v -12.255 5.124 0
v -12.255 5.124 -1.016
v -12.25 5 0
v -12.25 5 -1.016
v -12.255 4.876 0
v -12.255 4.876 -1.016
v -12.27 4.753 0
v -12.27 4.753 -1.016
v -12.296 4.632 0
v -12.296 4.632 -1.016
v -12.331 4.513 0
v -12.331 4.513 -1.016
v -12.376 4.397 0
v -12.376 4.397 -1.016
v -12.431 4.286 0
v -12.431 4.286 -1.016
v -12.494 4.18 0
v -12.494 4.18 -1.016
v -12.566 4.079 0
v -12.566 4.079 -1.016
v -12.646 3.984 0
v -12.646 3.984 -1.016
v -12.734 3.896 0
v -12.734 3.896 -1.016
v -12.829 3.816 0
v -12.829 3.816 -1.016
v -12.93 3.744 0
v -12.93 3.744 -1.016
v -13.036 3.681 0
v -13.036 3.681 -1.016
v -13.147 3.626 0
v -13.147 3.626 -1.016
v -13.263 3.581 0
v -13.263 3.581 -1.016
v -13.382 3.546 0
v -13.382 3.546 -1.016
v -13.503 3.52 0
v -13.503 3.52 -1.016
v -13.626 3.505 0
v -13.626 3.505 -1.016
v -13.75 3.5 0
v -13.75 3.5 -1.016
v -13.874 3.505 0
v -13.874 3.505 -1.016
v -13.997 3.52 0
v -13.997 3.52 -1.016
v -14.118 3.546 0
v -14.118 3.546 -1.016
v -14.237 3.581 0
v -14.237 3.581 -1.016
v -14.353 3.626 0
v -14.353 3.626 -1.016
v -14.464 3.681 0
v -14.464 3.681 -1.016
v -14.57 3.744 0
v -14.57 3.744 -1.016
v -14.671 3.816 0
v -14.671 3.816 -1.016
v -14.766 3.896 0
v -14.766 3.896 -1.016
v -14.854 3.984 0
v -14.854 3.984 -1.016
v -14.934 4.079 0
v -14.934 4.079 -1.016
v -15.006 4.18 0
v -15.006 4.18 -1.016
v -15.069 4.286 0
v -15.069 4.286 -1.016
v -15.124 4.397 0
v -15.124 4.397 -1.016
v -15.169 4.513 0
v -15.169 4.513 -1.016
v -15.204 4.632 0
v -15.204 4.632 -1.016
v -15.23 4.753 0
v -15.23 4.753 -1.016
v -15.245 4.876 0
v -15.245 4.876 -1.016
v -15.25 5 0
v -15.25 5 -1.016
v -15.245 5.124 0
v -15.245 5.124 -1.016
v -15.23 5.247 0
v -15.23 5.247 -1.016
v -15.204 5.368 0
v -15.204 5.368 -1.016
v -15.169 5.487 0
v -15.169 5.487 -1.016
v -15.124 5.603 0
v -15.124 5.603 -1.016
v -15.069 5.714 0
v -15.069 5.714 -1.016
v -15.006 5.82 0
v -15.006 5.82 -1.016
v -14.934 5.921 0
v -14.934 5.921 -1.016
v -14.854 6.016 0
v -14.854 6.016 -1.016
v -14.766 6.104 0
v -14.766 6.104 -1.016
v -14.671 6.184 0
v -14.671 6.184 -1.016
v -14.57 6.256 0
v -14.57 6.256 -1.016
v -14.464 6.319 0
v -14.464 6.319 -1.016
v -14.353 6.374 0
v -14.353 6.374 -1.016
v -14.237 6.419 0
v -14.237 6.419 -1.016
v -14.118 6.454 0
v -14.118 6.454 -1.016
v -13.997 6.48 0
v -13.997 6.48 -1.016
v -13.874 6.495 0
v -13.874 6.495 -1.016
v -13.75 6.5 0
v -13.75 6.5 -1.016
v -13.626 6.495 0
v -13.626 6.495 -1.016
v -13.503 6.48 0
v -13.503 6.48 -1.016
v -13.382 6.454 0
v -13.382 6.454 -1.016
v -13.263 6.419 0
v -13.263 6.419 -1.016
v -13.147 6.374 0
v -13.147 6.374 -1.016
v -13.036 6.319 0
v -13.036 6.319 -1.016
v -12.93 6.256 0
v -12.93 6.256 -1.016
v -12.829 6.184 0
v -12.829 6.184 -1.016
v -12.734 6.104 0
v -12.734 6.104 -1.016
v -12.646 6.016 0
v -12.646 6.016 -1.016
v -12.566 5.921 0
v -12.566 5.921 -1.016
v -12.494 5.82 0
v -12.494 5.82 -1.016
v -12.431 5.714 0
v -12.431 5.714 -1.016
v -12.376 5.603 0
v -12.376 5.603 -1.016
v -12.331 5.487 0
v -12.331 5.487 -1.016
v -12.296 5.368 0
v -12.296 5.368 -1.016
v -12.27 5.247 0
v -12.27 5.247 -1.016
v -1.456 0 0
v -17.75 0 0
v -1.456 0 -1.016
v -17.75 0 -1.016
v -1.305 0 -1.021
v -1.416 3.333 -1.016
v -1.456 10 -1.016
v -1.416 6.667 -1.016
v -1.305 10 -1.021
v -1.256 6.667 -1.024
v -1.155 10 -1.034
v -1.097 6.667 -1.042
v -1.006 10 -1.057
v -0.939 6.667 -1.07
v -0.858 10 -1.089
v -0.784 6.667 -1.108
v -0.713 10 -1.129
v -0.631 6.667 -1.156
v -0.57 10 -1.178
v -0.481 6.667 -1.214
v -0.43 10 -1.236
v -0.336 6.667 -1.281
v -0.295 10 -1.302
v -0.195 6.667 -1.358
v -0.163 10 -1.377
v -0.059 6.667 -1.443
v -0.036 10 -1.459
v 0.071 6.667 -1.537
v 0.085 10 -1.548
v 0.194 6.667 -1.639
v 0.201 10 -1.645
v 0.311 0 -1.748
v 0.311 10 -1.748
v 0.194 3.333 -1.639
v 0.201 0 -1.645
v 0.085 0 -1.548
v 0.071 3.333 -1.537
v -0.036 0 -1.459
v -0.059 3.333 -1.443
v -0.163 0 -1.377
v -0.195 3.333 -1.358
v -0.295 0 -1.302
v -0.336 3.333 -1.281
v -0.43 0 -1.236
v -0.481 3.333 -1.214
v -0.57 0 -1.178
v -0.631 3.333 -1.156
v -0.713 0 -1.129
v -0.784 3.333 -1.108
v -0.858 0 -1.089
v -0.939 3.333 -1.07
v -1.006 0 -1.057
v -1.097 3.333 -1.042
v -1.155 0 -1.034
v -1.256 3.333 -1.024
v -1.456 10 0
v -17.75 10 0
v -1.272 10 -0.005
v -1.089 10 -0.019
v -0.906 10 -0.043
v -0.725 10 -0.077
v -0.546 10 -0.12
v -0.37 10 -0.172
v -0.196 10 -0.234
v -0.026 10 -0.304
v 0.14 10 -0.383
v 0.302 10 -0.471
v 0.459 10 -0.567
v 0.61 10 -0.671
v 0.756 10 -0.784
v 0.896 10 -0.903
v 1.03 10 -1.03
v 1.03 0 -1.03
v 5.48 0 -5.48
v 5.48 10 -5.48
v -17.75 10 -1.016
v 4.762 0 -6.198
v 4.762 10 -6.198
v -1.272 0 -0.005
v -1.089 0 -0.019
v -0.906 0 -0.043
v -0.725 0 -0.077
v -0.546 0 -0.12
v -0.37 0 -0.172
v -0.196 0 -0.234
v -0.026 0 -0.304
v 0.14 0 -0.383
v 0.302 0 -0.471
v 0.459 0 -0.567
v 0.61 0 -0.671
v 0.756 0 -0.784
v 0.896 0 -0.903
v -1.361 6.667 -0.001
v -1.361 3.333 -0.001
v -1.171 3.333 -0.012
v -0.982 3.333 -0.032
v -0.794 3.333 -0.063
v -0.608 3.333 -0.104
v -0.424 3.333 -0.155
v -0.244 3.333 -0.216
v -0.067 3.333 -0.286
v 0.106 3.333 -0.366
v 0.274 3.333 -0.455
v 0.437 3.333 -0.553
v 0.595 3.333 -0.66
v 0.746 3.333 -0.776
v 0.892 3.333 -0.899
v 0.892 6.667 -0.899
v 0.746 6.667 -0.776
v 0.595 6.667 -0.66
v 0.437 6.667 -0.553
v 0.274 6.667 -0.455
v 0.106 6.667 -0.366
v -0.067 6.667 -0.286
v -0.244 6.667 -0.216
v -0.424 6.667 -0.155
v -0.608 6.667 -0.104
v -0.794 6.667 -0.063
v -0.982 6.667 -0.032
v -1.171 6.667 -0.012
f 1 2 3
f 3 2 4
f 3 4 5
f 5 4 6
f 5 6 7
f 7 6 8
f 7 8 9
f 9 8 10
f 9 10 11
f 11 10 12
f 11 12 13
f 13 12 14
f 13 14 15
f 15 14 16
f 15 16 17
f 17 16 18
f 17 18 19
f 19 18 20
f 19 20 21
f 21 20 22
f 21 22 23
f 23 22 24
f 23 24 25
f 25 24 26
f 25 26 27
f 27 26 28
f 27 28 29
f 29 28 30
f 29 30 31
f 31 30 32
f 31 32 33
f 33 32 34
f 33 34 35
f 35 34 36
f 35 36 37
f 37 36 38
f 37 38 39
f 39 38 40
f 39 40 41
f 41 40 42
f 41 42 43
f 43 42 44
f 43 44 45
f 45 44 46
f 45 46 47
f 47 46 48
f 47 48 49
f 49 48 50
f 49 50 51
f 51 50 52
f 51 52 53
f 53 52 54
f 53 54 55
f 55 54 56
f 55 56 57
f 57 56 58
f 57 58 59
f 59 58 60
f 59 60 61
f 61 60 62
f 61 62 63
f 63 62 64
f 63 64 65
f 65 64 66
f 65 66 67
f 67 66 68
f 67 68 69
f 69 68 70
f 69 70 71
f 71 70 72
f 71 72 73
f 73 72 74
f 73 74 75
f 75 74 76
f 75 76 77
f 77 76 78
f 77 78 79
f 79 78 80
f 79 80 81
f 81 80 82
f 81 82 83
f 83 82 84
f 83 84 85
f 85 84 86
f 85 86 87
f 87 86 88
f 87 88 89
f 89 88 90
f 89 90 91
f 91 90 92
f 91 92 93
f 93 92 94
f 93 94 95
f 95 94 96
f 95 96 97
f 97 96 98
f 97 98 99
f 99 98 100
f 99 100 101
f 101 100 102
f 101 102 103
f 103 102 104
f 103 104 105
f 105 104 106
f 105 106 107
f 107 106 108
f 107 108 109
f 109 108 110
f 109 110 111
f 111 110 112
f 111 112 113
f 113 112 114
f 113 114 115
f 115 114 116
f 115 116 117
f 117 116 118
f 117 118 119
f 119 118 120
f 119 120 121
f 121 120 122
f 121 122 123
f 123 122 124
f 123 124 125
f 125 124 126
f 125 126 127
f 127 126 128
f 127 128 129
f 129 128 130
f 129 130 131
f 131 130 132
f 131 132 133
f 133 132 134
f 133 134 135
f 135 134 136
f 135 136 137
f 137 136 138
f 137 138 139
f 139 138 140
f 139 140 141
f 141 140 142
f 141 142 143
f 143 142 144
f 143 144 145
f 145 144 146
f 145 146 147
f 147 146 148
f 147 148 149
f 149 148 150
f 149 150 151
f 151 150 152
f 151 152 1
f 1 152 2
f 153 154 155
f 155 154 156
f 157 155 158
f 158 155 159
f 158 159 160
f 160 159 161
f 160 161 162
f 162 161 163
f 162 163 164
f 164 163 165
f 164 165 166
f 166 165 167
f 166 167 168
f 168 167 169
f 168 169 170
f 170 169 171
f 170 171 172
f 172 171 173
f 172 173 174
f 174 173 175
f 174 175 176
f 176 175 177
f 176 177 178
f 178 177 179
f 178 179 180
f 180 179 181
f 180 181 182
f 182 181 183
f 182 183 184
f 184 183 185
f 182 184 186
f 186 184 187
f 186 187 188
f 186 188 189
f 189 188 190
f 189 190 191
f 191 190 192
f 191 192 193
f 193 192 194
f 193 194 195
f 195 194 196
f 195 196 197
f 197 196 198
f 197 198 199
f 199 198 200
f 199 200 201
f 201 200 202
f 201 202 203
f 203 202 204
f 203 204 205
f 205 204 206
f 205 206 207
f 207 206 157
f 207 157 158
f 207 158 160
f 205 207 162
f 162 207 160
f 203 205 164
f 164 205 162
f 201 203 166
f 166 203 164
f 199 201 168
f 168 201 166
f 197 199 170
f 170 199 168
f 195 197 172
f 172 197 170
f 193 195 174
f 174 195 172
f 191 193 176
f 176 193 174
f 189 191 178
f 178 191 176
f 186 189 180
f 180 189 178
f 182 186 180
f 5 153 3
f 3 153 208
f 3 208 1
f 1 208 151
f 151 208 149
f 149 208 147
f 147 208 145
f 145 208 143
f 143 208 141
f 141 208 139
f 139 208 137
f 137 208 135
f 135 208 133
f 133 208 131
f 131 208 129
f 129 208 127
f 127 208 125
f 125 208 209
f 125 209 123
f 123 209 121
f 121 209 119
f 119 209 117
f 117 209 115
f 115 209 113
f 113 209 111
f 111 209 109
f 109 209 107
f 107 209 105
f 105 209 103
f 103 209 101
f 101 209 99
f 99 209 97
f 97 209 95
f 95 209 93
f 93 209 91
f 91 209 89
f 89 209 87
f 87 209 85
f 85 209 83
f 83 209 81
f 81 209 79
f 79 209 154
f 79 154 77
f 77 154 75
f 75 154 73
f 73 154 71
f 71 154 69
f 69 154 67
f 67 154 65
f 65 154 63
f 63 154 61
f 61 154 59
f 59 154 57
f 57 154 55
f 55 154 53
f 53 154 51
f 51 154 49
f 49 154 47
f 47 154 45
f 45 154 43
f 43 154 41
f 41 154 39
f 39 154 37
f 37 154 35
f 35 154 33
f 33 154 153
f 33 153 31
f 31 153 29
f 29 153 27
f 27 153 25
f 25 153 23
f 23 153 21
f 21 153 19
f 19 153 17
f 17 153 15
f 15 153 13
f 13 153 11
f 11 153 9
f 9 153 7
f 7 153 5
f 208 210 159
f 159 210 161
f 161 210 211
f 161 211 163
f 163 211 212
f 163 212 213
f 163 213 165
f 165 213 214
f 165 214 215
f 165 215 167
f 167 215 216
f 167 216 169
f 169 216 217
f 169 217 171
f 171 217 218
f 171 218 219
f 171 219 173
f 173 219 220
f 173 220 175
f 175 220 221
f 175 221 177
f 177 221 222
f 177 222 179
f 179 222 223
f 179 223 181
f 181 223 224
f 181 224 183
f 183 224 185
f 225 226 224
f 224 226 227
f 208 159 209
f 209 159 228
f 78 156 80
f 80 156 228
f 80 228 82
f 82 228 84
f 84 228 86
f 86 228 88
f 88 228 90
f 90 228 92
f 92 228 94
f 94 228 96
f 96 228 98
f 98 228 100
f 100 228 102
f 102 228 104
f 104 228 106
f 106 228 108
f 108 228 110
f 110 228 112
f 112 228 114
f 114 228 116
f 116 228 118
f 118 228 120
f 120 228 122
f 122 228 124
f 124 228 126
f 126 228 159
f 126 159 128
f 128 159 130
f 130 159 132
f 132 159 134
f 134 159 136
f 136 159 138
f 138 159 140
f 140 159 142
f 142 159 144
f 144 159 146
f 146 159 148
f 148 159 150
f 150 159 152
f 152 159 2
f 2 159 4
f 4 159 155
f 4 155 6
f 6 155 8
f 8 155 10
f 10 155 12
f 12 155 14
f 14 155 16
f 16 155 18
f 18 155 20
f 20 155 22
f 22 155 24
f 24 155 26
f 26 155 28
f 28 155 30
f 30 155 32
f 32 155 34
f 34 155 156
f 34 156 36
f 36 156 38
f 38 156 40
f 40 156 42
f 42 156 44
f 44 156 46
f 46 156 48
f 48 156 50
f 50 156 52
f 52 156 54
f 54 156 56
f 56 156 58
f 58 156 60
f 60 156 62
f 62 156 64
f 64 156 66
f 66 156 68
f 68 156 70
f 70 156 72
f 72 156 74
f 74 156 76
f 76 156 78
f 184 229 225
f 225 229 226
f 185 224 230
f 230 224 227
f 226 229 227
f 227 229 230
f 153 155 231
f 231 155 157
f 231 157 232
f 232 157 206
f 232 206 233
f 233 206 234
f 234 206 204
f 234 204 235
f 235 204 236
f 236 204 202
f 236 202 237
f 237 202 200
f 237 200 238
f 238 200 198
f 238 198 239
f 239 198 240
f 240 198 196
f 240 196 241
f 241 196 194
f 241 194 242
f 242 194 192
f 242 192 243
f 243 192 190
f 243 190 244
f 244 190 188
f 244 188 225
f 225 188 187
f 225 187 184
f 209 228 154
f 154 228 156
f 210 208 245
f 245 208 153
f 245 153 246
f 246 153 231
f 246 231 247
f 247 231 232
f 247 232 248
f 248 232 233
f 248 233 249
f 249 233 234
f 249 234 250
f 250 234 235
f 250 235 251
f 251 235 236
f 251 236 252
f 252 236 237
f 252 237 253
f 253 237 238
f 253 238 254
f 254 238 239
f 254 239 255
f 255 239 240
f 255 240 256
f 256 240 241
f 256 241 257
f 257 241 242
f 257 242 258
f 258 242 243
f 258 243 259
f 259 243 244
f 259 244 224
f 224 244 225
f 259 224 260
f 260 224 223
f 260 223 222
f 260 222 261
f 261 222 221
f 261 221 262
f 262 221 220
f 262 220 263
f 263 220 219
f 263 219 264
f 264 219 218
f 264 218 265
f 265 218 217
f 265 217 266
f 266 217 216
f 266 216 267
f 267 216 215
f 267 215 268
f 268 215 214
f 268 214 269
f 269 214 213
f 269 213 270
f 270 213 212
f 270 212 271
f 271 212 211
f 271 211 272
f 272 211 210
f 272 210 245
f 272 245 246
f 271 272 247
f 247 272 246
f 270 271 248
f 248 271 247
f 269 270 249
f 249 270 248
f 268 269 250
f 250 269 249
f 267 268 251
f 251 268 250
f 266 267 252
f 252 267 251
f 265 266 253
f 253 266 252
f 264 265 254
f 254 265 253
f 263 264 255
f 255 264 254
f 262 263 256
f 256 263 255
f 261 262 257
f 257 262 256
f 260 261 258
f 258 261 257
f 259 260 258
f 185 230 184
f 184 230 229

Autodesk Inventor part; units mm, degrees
ref_plane "YZ Plane" through (0, 0, 0) normal (1, 0, 0) x (0, 1, 0)
ref_plane "XZ Plane" through (0, 0, 0) normal (0, 1, 0) x (-1, 0, 0)
ref_plane "XY Plane" through (0, 0, 0) normal (0, 0, 1) x (1, 0, 0)
sketch "Sketch1" plane through (0, 0, 0) normal (0, 1, 0) x (-1, 0, 0)
  line L0 (0, 0) -> (-5.4801, -5.4801)
  line L1 (0, 0) -> (17.75, 0)
  dimension "d0" = 7.75
  dimension "d2" = 17.75
  dimension "d3" = 135
contour flange "Contour Flange1" sketch "Sketch1" thickness 1.016 bend radius 2.5 width 10 along (0, 1, 0) mid plane no both sides no wall seen from (2.74, 0, -2.74) lies toward (-0.7071068, 0, -0.7071068) curves L0 L1
bend "Bend1"
corner "Corner1"
sketch "Sketch2" plane through (-17.75, 0, -1.016) normal (0, 0, -1) x (-1, 0, 0)
  point P0 (-17.75, 0)
  point P1 (0, 0)
  point P2 (-4, 5)
  dimension "d15" = 5
  dimension "d16" = 4
hole "Hole1" at (-13.75, 5, -1.016) direction (0, 0, 1) diameter 3 end through all
equation "\"d22\" = Thickness"
equation "\"d4\" = Thickness"
equation "\"d5\" = BendReliefWidth"
equation "\"d6\" = BendReliefDepth"
equation "\"d7\" = MinimumRemnant"
equation "\"d8\" = TransitionRadius"
equation "\"d12\" = CornerReliefSize"
equation "\"d13\" = GapSize"
equation "\"d14\" = JacobiRadiusSize"
equation "\"BendRadius\" = Thickness"
equation "\"BendReliefWidth\" = Thickness"
equation "\"BendReliefDepth\" = 0.5 * Thickness"
equation "\"CornerReliefSize\" = 4 * Thickness"
equation "\"MinimumRemnant\" = 2 * Thickness"
equation "\"TransitionRadius\" = BendRadius"
equation "\"JacobiRadiusSize\" = BendRadius"
equation "\"GapSize\" = Thickness"
equation "\"Thickness\" = 1.016"
properties part number "Piston Flag" material "ABS Plastic"
